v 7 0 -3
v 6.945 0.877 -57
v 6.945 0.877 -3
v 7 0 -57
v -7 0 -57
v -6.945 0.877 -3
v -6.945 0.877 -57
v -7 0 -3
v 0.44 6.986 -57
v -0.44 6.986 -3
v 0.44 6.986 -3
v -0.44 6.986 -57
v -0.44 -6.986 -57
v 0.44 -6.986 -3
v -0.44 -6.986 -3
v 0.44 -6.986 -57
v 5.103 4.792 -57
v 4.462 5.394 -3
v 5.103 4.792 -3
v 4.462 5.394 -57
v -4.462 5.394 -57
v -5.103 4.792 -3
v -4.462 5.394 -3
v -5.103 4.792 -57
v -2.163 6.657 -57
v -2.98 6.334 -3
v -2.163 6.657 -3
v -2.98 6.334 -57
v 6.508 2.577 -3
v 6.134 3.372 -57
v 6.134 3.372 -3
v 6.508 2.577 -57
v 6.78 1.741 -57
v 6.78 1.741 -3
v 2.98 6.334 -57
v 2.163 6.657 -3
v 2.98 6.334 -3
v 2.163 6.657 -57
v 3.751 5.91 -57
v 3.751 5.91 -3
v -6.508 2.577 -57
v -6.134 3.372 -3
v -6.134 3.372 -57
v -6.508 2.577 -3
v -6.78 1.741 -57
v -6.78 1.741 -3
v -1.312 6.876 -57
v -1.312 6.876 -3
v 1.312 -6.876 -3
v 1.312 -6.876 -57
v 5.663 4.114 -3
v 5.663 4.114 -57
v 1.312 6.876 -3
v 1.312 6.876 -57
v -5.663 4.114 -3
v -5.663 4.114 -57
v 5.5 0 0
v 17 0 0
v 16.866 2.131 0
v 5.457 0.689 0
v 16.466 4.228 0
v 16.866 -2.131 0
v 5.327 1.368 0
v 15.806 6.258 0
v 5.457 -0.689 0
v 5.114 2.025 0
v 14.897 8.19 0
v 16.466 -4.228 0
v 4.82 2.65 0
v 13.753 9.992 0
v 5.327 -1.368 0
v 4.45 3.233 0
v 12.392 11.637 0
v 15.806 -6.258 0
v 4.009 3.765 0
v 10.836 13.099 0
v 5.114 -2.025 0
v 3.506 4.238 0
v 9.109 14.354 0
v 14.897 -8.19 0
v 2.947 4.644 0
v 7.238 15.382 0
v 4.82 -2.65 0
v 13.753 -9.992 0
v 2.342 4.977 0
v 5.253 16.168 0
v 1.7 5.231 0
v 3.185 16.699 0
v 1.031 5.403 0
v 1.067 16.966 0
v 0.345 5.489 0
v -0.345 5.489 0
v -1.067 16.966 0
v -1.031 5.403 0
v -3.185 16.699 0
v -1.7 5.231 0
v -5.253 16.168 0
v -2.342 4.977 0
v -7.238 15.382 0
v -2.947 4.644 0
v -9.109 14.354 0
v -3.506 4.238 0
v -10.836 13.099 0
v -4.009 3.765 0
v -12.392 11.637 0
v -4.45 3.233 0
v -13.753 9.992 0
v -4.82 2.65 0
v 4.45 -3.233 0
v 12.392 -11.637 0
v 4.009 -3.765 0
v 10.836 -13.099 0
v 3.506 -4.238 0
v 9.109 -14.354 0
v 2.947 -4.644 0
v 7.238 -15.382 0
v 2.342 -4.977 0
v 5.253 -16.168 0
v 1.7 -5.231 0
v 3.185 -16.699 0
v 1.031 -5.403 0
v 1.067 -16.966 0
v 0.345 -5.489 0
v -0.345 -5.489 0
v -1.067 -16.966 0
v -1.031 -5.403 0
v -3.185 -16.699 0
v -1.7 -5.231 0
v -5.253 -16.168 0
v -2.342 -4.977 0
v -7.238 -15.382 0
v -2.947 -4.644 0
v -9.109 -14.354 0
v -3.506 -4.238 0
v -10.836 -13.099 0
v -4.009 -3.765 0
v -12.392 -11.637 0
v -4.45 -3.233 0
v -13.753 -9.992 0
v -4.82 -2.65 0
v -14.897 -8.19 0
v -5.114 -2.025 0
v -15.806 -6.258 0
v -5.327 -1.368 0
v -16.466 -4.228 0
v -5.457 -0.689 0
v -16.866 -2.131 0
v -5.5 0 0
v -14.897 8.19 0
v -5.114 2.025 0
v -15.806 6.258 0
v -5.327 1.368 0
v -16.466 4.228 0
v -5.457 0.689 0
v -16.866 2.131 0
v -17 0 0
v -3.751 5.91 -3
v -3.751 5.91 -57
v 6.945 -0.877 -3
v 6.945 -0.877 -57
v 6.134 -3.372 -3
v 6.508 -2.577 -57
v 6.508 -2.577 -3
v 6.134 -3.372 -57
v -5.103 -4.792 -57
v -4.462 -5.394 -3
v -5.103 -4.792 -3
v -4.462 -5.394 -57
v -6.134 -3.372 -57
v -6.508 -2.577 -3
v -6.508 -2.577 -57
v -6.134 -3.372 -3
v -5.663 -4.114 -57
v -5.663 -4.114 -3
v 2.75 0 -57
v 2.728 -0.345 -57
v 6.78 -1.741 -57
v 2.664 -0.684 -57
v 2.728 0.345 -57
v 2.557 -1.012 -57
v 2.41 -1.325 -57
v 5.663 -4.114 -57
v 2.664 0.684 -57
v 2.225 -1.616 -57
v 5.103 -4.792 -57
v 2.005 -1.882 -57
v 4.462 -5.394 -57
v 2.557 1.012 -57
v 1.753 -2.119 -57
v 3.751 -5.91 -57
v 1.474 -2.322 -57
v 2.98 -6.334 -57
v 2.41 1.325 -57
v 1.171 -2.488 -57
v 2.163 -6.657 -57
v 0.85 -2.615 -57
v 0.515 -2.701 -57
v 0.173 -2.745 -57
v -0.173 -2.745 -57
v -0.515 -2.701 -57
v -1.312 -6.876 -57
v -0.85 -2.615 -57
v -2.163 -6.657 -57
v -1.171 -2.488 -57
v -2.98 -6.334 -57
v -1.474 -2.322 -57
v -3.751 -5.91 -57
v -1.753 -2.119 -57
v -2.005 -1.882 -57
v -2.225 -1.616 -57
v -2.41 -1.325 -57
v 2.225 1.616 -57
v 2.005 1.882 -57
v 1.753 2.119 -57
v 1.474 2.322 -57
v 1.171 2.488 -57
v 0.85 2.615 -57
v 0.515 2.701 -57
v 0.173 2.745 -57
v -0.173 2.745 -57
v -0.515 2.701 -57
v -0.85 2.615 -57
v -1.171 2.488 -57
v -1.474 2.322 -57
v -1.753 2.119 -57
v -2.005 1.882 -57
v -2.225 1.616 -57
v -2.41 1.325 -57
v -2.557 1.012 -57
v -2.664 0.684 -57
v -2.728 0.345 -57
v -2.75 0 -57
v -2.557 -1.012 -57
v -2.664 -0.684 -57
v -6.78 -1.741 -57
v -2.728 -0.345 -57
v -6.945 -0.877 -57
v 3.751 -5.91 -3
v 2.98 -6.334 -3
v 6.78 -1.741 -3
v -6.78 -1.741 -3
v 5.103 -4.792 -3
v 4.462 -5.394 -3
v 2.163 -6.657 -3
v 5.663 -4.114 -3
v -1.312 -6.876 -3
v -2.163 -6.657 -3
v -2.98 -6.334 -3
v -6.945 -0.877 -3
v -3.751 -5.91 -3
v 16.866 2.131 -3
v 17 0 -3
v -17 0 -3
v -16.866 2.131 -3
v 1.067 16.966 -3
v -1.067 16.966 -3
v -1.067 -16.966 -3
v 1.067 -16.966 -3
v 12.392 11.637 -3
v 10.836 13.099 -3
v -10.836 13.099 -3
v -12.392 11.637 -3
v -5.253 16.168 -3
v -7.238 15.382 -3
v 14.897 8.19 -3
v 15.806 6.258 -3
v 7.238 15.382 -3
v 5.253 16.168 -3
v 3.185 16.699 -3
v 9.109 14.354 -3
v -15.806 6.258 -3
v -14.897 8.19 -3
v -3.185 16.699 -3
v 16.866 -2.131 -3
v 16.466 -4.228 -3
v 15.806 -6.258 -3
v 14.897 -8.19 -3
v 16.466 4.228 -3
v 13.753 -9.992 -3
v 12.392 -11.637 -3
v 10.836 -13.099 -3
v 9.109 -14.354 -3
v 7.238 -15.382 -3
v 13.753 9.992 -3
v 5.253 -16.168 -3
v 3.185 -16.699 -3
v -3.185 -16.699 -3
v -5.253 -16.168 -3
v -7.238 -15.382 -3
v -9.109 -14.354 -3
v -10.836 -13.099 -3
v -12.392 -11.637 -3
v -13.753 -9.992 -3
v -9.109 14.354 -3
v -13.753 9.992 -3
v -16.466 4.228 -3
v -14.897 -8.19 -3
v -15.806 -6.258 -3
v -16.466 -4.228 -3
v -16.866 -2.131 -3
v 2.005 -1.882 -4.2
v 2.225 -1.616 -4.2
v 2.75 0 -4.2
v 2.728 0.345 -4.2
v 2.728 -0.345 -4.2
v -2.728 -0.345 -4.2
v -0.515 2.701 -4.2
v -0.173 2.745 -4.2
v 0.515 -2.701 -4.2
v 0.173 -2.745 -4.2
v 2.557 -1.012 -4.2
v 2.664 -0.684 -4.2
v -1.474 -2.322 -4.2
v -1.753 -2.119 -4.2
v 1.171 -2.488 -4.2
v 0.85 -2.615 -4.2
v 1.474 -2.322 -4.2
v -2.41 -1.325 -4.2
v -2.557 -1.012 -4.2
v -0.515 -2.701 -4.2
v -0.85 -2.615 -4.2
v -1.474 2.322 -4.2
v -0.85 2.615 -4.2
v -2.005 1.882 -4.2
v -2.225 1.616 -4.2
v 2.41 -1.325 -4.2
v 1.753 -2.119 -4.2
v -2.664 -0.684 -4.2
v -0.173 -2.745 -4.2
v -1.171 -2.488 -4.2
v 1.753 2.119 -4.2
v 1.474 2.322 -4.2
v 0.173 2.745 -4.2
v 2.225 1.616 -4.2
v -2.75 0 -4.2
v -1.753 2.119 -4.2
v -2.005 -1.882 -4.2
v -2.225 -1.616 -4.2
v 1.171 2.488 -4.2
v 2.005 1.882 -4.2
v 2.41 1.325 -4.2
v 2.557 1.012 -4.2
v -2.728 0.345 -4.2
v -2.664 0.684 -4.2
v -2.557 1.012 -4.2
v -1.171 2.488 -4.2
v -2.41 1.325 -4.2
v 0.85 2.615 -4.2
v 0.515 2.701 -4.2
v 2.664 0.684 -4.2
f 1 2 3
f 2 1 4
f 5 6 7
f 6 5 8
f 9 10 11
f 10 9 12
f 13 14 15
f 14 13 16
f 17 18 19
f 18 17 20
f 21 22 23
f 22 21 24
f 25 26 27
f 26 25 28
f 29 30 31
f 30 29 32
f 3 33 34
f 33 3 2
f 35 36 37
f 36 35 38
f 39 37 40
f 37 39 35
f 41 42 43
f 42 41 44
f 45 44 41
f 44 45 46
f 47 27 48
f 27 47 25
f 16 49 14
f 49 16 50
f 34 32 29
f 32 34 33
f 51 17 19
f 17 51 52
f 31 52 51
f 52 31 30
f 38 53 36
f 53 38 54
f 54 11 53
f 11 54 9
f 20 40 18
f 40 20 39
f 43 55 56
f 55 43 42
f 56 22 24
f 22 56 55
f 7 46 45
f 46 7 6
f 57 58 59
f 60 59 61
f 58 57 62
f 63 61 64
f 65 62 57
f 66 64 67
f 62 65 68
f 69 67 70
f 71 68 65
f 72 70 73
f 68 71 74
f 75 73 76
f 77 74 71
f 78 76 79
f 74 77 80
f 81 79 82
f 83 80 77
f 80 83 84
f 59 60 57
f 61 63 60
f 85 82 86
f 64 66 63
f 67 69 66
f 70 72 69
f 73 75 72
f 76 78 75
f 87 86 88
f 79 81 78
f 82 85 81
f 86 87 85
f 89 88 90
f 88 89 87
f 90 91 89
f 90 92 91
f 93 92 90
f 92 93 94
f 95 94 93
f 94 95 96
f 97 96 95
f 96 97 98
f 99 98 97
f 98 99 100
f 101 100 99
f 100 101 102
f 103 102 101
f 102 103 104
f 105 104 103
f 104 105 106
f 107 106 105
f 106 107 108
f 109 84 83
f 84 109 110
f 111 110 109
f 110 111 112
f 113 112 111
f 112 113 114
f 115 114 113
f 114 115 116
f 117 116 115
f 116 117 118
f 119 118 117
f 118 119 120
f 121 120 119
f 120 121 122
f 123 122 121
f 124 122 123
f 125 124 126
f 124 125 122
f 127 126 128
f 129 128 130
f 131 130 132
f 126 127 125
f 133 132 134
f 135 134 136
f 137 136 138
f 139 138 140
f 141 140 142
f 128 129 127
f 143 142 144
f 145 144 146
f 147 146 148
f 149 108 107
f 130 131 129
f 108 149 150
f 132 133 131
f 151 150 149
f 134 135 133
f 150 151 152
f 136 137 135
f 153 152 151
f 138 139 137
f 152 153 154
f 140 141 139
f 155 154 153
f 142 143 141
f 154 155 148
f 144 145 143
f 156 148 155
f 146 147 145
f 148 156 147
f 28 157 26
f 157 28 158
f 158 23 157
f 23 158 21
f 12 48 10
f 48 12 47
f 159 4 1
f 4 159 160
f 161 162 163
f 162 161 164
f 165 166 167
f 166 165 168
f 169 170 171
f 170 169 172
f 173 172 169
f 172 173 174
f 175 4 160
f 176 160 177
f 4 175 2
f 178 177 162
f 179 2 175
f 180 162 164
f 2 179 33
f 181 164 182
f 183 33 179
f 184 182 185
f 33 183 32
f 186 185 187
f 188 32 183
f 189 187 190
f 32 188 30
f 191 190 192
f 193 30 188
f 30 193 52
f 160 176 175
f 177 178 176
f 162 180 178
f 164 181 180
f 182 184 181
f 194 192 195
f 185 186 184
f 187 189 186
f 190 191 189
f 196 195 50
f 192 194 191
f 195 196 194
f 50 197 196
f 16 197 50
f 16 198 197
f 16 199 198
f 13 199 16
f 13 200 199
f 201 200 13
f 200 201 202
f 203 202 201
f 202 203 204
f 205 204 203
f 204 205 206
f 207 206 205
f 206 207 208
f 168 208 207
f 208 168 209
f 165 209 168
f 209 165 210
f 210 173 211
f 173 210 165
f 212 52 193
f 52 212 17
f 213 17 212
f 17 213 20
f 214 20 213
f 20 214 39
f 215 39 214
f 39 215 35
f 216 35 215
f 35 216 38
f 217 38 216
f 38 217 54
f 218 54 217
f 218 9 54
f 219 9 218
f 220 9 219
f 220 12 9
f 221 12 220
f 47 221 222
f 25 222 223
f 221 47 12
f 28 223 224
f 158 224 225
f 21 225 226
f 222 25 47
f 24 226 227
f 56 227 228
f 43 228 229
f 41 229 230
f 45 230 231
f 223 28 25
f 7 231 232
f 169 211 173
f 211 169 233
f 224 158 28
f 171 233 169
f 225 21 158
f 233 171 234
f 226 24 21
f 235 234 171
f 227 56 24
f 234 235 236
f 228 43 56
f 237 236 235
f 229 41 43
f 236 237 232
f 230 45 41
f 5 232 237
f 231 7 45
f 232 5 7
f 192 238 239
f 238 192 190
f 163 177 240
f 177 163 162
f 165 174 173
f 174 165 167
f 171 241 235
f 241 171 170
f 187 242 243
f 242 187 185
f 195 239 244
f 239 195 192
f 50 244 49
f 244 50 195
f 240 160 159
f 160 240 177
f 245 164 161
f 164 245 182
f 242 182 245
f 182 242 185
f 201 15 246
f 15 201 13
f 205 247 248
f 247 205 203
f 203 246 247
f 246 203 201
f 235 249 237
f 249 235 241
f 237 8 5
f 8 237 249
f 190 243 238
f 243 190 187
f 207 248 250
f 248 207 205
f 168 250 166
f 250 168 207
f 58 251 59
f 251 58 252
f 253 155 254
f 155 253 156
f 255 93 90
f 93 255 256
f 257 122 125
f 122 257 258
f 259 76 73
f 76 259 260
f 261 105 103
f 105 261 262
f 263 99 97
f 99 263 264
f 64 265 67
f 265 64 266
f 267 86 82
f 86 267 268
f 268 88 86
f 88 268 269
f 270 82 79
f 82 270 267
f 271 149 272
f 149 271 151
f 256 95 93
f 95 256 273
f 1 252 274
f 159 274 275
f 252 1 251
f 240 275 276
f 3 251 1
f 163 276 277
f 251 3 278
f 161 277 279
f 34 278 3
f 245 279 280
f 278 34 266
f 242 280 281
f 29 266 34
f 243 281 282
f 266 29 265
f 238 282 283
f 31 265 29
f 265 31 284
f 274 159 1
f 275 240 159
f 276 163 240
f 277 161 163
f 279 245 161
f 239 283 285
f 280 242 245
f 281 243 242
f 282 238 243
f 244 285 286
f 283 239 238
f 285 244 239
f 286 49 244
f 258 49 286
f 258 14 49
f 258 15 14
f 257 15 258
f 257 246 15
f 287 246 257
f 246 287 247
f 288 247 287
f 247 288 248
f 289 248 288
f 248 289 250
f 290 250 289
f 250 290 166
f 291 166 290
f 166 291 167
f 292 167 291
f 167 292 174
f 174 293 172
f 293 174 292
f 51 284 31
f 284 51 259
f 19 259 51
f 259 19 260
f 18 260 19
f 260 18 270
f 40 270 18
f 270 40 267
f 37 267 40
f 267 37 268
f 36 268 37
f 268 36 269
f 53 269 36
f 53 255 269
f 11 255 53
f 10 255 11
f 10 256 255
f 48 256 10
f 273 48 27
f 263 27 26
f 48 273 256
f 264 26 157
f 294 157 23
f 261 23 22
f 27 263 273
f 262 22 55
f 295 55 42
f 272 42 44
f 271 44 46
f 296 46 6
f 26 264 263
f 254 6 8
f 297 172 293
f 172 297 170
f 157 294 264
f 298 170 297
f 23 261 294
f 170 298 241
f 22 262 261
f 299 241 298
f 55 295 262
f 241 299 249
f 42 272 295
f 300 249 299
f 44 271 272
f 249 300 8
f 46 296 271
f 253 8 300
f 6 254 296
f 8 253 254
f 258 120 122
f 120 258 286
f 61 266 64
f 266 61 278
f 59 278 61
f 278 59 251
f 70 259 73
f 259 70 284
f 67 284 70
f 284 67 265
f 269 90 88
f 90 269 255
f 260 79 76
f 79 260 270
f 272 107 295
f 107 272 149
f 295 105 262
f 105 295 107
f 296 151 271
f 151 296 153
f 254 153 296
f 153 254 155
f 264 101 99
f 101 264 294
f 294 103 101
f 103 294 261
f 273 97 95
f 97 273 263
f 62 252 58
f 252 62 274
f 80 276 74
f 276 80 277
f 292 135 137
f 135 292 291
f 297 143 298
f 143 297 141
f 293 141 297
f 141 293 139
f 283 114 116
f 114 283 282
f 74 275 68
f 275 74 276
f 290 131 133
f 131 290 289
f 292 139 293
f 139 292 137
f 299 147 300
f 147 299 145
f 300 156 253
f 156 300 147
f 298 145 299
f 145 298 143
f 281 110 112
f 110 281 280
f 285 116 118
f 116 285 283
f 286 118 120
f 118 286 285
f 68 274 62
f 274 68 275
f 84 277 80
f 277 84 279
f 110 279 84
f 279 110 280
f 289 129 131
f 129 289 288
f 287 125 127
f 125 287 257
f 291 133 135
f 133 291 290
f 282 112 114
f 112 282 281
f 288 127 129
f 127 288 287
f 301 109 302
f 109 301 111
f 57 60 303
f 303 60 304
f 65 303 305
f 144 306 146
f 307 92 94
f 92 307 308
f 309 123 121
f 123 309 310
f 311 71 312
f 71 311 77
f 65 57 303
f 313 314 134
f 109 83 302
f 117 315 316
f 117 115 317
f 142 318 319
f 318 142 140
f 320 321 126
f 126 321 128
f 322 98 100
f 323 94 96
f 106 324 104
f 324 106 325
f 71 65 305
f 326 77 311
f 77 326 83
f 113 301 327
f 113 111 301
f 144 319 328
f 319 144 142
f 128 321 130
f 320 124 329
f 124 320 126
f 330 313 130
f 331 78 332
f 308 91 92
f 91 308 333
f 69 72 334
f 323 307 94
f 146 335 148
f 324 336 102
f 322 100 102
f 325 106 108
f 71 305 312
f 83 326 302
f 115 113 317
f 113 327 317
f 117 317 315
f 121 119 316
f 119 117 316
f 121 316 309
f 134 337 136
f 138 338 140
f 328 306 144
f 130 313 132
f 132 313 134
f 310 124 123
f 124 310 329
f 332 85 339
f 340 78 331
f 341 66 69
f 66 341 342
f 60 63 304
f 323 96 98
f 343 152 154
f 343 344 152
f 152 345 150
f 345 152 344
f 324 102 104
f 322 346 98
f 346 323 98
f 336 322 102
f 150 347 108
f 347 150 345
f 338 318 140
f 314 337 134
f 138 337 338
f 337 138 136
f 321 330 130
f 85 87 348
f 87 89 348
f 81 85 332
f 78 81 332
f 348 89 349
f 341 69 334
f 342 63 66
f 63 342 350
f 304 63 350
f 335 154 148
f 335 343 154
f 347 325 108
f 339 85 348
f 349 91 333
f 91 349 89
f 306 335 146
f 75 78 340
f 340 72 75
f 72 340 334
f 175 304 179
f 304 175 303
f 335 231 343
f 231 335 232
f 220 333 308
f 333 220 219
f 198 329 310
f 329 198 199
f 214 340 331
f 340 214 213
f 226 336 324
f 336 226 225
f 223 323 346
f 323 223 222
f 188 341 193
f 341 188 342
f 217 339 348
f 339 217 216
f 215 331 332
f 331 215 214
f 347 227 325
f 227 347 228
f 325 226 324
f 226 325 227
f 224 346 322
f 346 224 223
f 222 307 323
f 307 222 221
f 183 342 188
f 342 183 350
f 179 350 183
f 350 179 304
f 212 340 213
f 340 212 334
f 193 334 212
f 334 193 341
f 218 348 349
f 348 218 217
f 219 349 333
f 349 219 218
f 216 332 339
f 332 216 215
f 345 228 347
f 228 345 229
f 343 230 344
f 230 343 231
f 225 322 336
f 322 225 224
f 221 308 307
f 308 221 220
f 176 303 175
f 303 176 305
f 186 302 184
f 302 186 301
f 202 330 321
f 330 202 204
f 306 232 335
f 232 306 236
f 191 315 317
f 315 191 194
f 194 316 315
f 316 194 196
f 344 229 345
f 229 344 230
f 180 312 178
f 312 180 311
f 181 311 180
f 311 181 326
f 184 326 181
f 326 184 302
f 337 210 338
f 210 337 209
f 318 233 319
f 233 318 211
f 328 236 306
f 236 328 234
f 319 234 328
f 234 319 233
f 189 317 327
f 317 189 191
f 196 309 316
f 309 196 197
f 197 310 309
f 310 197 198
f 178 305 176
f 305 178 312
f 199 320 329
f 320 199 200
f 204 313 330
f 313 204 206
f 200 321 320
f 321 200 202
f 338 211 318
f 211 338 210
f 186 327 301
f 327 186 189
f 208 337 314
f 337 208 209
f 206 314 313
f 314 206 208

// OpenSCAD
$fn = 50;


difference() {
	union() {
		translate(v = [0, 0, -57.0000000000]) {
			cylinder(h = 57, r = 7.0000000000);
		}
		translate(v = [0, 0, -3.0000000000]) {
			cylinder(h = 3, r = 17.0000000000);
		}
	}
	union() {
		translate(v = [0, 0, 0]) {
			rotate(a = [0, 0, 0]) {
				difference() {
					union() {
						#translate(v = [0, 0, -57.0000000000]) {
							cylinder(h = 57, r = 2.2500000000);
						}
						#translate(v = [0, 0, -4.2000000000]) {
							cylinder(h = 4.2000000000, r1 = 2.7500000000, r2 = 5.5000000000);
						}
						#translate(v = [0, 0, -57.0000000000]) {
							cylinder(h = 57, r = 2.7500000000);
						}
						#translate(v = [0, 0, -57.0000000000]) {
							cylinder(h = 57, r = 2.2500000000);
						}
					}
					union();
				}
			}
		}
	}
}
